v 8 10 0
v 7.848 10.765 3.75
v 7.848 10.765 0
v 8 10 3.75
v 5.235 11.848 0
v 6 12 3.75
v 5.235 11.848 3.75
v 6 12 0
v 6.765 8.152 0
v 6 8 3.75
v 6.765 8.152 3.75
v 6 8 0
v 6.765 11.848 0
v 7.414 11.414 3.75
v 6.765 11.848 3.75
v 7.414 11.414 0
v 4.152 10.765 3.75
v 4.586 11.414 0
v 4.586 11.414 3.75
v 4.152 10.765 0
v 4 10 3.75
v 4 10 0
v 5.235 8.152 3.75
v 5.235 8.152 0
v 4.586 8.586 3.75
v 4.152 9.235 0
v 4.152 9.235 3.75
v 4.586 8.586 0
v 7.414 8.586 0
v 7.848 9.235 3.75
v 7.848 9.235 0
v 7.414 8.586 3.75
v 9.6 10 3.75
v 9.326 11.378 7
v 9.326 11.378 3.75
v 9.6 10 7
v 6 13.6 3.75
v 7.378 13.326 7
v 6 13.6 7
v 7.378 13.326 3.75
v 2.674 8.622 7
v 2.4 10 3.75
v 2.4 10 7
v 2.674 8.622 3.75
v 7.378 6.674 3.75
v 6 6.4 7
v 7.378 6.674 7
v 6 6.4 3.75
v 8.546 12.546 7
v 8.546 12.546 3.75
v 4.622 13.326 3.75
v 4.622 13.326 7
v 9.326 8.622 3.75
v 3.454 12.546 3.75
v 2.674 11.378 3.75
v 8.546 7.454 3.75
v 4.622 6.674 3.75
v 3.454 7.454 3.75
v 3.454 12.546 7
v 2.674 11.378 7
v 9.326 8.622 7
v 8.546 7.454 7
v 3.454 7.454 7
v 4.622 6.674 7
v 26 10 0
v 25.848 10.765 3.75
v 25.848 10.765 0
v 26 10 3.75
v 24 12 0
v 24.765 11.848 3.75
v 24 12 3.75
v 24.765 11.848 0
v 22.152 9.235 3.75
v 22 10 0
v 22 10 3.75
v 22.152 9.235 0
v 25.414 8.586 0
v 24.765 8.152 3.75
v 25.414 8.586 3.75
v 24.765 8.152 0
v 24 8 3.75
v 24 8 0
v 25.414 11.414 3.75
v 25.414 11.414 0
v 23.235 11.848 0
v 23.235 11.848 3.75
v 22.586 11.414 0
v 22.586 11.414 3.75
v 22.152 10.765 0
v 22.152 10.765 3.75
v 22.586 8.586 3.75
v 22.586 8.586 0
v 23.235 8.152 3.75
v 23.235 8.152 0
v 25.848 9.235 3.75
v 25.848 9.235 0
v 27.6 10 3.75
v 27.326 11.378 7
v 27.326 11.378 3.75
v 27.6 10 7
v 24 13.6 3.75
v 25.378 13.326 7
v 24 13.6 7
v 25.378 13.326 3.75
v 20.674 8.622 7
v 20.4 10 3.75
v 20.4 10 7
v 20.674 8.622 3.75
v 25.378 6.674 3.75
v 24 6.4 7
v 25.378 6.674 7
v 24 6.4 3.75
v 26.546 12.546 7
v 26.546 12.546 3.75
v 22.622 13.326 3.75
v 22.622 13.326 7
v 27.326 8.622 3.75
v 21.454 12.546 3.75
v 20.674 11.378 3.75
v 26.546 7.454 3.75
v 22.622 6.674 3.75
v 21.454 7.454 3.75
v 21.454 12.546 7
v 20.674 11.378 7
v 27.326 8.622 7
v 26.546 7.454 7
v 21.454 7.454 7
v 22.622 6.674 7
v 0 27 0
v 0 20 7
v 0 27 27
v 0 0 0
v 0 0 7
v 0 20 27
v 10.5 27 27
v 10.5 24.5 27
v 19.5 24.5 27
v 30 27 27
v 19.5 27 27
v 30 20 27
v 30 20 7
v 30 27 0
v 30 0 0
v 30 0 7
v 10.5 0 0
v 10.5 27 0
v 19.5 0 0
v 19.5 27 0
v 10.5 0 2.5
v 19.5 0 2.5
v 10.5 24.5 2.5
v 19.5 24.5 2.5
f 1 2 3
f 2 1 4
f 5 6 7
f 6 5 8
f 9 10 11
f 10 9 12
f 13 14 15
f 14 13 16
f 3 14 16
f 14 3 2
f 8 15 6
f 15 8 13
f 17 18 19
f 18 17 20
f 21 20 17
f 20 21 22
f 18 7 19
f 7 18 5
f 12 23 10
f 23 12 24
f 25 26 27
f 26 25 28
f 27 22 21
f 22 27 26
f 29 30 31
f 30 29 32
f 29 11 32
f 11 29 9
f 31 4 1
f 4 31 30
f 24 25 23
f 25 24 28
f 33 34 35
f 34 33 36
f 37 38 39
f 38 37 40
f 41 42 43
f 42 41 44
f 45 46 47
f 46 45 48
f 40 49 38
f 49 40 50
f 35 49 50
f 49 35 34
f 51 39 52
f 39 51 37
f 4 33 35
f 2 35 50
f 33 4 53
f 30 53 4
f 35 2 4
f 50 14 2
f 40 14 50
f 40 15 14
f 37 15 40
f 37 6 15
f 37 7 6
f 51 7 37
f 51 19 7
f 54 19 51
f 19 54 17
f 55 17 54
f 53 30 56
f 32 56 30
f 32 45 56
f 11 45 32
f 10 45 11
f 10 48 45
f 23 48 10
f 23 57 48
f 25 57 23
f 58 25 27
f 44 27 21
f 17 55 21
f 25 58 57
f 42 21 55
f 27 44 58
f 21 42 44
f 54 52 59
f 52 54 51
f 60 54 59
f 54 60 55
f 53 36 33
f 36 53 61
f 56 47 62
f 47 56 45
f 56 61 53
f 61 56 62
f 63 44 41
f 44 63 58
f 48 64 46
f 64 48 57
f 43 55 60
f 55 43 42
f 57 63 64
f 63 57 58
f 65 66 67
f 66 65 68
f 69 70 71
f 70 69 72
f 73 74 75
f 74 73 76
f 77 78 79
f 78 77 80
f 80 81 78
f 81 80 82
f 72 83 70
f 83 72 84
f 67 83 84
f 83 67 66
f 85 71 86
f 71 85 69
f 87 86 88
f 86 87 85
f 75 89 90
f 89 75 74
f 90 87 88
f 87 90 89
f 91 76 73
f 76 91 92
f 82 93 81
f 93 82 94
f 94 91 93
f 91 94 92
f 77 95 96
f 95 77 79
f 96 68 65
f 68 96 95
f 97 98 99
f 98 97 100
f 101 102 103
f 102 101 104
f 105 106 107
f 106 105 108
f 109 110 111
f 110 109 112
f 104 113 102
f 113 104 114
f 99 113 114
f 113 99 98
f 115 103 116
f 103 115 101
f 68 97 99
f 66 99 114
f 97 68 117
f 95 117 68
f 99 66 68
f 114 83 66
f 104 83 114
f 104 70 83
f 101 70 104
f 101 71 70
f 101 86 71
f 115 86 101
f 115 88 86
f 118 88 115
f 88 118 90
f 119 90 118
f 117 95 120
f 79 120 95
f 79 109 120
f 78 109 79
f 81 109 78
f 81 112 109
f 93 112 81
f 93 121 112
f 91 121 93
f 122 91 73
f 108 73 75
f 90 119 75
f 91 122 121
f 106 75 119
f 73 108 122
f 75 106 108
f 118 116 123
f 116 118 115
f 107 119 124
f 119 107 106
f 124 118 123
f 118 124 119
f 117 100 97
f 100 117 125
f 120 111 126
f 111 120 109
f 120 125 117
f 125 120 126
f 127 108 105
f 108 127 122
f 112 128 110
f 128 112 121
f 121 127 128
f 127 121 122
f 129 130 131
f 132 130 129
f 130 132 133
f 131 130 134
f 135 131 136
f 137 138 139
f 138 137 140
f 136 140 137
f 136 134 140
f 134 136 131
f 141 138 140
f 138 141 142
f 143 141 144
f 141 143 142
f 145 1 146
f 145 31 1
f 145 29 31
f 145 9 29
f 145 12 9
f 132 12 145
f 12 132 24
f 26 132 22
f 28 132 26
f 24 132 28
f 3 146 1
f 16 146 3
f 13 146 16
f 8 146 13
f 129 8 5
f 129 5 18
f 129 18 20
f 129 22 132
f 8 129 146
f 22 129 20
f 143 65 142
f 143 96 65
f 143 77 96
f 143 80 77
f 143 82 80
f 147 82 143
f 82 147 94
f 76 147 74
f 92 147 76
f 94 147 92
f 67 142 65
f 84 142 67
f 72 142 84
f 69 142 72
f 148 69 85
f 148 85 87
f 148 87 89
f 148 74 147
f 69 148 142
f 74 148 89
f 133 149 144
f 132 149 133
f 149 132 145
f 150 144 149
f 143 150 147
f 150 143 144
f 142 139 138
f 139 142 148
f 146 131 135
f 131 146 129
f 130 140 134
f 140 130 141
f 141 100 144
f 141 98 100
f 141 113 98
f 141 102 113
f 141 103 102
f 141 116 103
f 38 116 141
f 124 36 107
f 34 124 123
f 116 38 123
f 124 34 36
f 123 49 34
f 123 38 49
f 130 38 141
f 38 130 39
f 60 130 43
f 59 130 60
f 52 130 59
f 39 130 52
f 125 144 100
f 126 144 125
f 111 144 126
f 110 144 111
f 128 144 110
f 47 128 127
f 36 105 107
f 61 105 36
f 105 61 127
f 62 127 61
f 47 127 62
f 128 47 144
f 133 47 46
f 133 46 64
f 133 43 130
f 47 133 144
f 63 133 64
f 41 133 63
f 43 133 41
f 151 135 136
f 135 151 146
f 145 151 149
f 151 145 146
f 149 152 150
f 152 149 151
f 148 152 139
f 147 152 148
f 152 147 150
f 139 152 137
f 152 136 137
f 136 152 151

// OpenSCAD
// Base is 49mm wide, 25mm deep
// Body is 39mm wide
// Tab is 16mm wide
// Locks are 6mm from back, 12mm from side, 10mm long

module screw (x, y)
{
  translate ([x, y, 0]) {
    cylinder (h=10, d=4.0, $fn=16, center=true);
  }
  translate ([x, y, 6]) {
    cylinder (h=4.5, d=7.2, $fn=16, center=true);
  }
}

translate ([0, 0, 0]) {
  difference () {
     // Floor
    cube ([30, 27, 27]);

    // Remove cube to create vertical
    translate ([0, 0, 7]) {
      cube ([30, 20, 27]);
    }
    
    // Tie-wrap
    translate ([10.5, 0, 0]) {
      cube ([9, 27, 2.5]);
    }
    translate ([10.5, 24.5, 0]) {
      cube ([9, 2.5, 30]);
    }
    /*
    translate ([15, 24.5, 2.5]) {
      rotate (a=90, v=[0,1,0]) {
        cylinder (h=9, d=4, $fn=16, center=true);
      }
    }
    */
    
    //  Screw holes & head recesses
    screw (6, 10);
    screw (24, 10);
  } 
}

  
